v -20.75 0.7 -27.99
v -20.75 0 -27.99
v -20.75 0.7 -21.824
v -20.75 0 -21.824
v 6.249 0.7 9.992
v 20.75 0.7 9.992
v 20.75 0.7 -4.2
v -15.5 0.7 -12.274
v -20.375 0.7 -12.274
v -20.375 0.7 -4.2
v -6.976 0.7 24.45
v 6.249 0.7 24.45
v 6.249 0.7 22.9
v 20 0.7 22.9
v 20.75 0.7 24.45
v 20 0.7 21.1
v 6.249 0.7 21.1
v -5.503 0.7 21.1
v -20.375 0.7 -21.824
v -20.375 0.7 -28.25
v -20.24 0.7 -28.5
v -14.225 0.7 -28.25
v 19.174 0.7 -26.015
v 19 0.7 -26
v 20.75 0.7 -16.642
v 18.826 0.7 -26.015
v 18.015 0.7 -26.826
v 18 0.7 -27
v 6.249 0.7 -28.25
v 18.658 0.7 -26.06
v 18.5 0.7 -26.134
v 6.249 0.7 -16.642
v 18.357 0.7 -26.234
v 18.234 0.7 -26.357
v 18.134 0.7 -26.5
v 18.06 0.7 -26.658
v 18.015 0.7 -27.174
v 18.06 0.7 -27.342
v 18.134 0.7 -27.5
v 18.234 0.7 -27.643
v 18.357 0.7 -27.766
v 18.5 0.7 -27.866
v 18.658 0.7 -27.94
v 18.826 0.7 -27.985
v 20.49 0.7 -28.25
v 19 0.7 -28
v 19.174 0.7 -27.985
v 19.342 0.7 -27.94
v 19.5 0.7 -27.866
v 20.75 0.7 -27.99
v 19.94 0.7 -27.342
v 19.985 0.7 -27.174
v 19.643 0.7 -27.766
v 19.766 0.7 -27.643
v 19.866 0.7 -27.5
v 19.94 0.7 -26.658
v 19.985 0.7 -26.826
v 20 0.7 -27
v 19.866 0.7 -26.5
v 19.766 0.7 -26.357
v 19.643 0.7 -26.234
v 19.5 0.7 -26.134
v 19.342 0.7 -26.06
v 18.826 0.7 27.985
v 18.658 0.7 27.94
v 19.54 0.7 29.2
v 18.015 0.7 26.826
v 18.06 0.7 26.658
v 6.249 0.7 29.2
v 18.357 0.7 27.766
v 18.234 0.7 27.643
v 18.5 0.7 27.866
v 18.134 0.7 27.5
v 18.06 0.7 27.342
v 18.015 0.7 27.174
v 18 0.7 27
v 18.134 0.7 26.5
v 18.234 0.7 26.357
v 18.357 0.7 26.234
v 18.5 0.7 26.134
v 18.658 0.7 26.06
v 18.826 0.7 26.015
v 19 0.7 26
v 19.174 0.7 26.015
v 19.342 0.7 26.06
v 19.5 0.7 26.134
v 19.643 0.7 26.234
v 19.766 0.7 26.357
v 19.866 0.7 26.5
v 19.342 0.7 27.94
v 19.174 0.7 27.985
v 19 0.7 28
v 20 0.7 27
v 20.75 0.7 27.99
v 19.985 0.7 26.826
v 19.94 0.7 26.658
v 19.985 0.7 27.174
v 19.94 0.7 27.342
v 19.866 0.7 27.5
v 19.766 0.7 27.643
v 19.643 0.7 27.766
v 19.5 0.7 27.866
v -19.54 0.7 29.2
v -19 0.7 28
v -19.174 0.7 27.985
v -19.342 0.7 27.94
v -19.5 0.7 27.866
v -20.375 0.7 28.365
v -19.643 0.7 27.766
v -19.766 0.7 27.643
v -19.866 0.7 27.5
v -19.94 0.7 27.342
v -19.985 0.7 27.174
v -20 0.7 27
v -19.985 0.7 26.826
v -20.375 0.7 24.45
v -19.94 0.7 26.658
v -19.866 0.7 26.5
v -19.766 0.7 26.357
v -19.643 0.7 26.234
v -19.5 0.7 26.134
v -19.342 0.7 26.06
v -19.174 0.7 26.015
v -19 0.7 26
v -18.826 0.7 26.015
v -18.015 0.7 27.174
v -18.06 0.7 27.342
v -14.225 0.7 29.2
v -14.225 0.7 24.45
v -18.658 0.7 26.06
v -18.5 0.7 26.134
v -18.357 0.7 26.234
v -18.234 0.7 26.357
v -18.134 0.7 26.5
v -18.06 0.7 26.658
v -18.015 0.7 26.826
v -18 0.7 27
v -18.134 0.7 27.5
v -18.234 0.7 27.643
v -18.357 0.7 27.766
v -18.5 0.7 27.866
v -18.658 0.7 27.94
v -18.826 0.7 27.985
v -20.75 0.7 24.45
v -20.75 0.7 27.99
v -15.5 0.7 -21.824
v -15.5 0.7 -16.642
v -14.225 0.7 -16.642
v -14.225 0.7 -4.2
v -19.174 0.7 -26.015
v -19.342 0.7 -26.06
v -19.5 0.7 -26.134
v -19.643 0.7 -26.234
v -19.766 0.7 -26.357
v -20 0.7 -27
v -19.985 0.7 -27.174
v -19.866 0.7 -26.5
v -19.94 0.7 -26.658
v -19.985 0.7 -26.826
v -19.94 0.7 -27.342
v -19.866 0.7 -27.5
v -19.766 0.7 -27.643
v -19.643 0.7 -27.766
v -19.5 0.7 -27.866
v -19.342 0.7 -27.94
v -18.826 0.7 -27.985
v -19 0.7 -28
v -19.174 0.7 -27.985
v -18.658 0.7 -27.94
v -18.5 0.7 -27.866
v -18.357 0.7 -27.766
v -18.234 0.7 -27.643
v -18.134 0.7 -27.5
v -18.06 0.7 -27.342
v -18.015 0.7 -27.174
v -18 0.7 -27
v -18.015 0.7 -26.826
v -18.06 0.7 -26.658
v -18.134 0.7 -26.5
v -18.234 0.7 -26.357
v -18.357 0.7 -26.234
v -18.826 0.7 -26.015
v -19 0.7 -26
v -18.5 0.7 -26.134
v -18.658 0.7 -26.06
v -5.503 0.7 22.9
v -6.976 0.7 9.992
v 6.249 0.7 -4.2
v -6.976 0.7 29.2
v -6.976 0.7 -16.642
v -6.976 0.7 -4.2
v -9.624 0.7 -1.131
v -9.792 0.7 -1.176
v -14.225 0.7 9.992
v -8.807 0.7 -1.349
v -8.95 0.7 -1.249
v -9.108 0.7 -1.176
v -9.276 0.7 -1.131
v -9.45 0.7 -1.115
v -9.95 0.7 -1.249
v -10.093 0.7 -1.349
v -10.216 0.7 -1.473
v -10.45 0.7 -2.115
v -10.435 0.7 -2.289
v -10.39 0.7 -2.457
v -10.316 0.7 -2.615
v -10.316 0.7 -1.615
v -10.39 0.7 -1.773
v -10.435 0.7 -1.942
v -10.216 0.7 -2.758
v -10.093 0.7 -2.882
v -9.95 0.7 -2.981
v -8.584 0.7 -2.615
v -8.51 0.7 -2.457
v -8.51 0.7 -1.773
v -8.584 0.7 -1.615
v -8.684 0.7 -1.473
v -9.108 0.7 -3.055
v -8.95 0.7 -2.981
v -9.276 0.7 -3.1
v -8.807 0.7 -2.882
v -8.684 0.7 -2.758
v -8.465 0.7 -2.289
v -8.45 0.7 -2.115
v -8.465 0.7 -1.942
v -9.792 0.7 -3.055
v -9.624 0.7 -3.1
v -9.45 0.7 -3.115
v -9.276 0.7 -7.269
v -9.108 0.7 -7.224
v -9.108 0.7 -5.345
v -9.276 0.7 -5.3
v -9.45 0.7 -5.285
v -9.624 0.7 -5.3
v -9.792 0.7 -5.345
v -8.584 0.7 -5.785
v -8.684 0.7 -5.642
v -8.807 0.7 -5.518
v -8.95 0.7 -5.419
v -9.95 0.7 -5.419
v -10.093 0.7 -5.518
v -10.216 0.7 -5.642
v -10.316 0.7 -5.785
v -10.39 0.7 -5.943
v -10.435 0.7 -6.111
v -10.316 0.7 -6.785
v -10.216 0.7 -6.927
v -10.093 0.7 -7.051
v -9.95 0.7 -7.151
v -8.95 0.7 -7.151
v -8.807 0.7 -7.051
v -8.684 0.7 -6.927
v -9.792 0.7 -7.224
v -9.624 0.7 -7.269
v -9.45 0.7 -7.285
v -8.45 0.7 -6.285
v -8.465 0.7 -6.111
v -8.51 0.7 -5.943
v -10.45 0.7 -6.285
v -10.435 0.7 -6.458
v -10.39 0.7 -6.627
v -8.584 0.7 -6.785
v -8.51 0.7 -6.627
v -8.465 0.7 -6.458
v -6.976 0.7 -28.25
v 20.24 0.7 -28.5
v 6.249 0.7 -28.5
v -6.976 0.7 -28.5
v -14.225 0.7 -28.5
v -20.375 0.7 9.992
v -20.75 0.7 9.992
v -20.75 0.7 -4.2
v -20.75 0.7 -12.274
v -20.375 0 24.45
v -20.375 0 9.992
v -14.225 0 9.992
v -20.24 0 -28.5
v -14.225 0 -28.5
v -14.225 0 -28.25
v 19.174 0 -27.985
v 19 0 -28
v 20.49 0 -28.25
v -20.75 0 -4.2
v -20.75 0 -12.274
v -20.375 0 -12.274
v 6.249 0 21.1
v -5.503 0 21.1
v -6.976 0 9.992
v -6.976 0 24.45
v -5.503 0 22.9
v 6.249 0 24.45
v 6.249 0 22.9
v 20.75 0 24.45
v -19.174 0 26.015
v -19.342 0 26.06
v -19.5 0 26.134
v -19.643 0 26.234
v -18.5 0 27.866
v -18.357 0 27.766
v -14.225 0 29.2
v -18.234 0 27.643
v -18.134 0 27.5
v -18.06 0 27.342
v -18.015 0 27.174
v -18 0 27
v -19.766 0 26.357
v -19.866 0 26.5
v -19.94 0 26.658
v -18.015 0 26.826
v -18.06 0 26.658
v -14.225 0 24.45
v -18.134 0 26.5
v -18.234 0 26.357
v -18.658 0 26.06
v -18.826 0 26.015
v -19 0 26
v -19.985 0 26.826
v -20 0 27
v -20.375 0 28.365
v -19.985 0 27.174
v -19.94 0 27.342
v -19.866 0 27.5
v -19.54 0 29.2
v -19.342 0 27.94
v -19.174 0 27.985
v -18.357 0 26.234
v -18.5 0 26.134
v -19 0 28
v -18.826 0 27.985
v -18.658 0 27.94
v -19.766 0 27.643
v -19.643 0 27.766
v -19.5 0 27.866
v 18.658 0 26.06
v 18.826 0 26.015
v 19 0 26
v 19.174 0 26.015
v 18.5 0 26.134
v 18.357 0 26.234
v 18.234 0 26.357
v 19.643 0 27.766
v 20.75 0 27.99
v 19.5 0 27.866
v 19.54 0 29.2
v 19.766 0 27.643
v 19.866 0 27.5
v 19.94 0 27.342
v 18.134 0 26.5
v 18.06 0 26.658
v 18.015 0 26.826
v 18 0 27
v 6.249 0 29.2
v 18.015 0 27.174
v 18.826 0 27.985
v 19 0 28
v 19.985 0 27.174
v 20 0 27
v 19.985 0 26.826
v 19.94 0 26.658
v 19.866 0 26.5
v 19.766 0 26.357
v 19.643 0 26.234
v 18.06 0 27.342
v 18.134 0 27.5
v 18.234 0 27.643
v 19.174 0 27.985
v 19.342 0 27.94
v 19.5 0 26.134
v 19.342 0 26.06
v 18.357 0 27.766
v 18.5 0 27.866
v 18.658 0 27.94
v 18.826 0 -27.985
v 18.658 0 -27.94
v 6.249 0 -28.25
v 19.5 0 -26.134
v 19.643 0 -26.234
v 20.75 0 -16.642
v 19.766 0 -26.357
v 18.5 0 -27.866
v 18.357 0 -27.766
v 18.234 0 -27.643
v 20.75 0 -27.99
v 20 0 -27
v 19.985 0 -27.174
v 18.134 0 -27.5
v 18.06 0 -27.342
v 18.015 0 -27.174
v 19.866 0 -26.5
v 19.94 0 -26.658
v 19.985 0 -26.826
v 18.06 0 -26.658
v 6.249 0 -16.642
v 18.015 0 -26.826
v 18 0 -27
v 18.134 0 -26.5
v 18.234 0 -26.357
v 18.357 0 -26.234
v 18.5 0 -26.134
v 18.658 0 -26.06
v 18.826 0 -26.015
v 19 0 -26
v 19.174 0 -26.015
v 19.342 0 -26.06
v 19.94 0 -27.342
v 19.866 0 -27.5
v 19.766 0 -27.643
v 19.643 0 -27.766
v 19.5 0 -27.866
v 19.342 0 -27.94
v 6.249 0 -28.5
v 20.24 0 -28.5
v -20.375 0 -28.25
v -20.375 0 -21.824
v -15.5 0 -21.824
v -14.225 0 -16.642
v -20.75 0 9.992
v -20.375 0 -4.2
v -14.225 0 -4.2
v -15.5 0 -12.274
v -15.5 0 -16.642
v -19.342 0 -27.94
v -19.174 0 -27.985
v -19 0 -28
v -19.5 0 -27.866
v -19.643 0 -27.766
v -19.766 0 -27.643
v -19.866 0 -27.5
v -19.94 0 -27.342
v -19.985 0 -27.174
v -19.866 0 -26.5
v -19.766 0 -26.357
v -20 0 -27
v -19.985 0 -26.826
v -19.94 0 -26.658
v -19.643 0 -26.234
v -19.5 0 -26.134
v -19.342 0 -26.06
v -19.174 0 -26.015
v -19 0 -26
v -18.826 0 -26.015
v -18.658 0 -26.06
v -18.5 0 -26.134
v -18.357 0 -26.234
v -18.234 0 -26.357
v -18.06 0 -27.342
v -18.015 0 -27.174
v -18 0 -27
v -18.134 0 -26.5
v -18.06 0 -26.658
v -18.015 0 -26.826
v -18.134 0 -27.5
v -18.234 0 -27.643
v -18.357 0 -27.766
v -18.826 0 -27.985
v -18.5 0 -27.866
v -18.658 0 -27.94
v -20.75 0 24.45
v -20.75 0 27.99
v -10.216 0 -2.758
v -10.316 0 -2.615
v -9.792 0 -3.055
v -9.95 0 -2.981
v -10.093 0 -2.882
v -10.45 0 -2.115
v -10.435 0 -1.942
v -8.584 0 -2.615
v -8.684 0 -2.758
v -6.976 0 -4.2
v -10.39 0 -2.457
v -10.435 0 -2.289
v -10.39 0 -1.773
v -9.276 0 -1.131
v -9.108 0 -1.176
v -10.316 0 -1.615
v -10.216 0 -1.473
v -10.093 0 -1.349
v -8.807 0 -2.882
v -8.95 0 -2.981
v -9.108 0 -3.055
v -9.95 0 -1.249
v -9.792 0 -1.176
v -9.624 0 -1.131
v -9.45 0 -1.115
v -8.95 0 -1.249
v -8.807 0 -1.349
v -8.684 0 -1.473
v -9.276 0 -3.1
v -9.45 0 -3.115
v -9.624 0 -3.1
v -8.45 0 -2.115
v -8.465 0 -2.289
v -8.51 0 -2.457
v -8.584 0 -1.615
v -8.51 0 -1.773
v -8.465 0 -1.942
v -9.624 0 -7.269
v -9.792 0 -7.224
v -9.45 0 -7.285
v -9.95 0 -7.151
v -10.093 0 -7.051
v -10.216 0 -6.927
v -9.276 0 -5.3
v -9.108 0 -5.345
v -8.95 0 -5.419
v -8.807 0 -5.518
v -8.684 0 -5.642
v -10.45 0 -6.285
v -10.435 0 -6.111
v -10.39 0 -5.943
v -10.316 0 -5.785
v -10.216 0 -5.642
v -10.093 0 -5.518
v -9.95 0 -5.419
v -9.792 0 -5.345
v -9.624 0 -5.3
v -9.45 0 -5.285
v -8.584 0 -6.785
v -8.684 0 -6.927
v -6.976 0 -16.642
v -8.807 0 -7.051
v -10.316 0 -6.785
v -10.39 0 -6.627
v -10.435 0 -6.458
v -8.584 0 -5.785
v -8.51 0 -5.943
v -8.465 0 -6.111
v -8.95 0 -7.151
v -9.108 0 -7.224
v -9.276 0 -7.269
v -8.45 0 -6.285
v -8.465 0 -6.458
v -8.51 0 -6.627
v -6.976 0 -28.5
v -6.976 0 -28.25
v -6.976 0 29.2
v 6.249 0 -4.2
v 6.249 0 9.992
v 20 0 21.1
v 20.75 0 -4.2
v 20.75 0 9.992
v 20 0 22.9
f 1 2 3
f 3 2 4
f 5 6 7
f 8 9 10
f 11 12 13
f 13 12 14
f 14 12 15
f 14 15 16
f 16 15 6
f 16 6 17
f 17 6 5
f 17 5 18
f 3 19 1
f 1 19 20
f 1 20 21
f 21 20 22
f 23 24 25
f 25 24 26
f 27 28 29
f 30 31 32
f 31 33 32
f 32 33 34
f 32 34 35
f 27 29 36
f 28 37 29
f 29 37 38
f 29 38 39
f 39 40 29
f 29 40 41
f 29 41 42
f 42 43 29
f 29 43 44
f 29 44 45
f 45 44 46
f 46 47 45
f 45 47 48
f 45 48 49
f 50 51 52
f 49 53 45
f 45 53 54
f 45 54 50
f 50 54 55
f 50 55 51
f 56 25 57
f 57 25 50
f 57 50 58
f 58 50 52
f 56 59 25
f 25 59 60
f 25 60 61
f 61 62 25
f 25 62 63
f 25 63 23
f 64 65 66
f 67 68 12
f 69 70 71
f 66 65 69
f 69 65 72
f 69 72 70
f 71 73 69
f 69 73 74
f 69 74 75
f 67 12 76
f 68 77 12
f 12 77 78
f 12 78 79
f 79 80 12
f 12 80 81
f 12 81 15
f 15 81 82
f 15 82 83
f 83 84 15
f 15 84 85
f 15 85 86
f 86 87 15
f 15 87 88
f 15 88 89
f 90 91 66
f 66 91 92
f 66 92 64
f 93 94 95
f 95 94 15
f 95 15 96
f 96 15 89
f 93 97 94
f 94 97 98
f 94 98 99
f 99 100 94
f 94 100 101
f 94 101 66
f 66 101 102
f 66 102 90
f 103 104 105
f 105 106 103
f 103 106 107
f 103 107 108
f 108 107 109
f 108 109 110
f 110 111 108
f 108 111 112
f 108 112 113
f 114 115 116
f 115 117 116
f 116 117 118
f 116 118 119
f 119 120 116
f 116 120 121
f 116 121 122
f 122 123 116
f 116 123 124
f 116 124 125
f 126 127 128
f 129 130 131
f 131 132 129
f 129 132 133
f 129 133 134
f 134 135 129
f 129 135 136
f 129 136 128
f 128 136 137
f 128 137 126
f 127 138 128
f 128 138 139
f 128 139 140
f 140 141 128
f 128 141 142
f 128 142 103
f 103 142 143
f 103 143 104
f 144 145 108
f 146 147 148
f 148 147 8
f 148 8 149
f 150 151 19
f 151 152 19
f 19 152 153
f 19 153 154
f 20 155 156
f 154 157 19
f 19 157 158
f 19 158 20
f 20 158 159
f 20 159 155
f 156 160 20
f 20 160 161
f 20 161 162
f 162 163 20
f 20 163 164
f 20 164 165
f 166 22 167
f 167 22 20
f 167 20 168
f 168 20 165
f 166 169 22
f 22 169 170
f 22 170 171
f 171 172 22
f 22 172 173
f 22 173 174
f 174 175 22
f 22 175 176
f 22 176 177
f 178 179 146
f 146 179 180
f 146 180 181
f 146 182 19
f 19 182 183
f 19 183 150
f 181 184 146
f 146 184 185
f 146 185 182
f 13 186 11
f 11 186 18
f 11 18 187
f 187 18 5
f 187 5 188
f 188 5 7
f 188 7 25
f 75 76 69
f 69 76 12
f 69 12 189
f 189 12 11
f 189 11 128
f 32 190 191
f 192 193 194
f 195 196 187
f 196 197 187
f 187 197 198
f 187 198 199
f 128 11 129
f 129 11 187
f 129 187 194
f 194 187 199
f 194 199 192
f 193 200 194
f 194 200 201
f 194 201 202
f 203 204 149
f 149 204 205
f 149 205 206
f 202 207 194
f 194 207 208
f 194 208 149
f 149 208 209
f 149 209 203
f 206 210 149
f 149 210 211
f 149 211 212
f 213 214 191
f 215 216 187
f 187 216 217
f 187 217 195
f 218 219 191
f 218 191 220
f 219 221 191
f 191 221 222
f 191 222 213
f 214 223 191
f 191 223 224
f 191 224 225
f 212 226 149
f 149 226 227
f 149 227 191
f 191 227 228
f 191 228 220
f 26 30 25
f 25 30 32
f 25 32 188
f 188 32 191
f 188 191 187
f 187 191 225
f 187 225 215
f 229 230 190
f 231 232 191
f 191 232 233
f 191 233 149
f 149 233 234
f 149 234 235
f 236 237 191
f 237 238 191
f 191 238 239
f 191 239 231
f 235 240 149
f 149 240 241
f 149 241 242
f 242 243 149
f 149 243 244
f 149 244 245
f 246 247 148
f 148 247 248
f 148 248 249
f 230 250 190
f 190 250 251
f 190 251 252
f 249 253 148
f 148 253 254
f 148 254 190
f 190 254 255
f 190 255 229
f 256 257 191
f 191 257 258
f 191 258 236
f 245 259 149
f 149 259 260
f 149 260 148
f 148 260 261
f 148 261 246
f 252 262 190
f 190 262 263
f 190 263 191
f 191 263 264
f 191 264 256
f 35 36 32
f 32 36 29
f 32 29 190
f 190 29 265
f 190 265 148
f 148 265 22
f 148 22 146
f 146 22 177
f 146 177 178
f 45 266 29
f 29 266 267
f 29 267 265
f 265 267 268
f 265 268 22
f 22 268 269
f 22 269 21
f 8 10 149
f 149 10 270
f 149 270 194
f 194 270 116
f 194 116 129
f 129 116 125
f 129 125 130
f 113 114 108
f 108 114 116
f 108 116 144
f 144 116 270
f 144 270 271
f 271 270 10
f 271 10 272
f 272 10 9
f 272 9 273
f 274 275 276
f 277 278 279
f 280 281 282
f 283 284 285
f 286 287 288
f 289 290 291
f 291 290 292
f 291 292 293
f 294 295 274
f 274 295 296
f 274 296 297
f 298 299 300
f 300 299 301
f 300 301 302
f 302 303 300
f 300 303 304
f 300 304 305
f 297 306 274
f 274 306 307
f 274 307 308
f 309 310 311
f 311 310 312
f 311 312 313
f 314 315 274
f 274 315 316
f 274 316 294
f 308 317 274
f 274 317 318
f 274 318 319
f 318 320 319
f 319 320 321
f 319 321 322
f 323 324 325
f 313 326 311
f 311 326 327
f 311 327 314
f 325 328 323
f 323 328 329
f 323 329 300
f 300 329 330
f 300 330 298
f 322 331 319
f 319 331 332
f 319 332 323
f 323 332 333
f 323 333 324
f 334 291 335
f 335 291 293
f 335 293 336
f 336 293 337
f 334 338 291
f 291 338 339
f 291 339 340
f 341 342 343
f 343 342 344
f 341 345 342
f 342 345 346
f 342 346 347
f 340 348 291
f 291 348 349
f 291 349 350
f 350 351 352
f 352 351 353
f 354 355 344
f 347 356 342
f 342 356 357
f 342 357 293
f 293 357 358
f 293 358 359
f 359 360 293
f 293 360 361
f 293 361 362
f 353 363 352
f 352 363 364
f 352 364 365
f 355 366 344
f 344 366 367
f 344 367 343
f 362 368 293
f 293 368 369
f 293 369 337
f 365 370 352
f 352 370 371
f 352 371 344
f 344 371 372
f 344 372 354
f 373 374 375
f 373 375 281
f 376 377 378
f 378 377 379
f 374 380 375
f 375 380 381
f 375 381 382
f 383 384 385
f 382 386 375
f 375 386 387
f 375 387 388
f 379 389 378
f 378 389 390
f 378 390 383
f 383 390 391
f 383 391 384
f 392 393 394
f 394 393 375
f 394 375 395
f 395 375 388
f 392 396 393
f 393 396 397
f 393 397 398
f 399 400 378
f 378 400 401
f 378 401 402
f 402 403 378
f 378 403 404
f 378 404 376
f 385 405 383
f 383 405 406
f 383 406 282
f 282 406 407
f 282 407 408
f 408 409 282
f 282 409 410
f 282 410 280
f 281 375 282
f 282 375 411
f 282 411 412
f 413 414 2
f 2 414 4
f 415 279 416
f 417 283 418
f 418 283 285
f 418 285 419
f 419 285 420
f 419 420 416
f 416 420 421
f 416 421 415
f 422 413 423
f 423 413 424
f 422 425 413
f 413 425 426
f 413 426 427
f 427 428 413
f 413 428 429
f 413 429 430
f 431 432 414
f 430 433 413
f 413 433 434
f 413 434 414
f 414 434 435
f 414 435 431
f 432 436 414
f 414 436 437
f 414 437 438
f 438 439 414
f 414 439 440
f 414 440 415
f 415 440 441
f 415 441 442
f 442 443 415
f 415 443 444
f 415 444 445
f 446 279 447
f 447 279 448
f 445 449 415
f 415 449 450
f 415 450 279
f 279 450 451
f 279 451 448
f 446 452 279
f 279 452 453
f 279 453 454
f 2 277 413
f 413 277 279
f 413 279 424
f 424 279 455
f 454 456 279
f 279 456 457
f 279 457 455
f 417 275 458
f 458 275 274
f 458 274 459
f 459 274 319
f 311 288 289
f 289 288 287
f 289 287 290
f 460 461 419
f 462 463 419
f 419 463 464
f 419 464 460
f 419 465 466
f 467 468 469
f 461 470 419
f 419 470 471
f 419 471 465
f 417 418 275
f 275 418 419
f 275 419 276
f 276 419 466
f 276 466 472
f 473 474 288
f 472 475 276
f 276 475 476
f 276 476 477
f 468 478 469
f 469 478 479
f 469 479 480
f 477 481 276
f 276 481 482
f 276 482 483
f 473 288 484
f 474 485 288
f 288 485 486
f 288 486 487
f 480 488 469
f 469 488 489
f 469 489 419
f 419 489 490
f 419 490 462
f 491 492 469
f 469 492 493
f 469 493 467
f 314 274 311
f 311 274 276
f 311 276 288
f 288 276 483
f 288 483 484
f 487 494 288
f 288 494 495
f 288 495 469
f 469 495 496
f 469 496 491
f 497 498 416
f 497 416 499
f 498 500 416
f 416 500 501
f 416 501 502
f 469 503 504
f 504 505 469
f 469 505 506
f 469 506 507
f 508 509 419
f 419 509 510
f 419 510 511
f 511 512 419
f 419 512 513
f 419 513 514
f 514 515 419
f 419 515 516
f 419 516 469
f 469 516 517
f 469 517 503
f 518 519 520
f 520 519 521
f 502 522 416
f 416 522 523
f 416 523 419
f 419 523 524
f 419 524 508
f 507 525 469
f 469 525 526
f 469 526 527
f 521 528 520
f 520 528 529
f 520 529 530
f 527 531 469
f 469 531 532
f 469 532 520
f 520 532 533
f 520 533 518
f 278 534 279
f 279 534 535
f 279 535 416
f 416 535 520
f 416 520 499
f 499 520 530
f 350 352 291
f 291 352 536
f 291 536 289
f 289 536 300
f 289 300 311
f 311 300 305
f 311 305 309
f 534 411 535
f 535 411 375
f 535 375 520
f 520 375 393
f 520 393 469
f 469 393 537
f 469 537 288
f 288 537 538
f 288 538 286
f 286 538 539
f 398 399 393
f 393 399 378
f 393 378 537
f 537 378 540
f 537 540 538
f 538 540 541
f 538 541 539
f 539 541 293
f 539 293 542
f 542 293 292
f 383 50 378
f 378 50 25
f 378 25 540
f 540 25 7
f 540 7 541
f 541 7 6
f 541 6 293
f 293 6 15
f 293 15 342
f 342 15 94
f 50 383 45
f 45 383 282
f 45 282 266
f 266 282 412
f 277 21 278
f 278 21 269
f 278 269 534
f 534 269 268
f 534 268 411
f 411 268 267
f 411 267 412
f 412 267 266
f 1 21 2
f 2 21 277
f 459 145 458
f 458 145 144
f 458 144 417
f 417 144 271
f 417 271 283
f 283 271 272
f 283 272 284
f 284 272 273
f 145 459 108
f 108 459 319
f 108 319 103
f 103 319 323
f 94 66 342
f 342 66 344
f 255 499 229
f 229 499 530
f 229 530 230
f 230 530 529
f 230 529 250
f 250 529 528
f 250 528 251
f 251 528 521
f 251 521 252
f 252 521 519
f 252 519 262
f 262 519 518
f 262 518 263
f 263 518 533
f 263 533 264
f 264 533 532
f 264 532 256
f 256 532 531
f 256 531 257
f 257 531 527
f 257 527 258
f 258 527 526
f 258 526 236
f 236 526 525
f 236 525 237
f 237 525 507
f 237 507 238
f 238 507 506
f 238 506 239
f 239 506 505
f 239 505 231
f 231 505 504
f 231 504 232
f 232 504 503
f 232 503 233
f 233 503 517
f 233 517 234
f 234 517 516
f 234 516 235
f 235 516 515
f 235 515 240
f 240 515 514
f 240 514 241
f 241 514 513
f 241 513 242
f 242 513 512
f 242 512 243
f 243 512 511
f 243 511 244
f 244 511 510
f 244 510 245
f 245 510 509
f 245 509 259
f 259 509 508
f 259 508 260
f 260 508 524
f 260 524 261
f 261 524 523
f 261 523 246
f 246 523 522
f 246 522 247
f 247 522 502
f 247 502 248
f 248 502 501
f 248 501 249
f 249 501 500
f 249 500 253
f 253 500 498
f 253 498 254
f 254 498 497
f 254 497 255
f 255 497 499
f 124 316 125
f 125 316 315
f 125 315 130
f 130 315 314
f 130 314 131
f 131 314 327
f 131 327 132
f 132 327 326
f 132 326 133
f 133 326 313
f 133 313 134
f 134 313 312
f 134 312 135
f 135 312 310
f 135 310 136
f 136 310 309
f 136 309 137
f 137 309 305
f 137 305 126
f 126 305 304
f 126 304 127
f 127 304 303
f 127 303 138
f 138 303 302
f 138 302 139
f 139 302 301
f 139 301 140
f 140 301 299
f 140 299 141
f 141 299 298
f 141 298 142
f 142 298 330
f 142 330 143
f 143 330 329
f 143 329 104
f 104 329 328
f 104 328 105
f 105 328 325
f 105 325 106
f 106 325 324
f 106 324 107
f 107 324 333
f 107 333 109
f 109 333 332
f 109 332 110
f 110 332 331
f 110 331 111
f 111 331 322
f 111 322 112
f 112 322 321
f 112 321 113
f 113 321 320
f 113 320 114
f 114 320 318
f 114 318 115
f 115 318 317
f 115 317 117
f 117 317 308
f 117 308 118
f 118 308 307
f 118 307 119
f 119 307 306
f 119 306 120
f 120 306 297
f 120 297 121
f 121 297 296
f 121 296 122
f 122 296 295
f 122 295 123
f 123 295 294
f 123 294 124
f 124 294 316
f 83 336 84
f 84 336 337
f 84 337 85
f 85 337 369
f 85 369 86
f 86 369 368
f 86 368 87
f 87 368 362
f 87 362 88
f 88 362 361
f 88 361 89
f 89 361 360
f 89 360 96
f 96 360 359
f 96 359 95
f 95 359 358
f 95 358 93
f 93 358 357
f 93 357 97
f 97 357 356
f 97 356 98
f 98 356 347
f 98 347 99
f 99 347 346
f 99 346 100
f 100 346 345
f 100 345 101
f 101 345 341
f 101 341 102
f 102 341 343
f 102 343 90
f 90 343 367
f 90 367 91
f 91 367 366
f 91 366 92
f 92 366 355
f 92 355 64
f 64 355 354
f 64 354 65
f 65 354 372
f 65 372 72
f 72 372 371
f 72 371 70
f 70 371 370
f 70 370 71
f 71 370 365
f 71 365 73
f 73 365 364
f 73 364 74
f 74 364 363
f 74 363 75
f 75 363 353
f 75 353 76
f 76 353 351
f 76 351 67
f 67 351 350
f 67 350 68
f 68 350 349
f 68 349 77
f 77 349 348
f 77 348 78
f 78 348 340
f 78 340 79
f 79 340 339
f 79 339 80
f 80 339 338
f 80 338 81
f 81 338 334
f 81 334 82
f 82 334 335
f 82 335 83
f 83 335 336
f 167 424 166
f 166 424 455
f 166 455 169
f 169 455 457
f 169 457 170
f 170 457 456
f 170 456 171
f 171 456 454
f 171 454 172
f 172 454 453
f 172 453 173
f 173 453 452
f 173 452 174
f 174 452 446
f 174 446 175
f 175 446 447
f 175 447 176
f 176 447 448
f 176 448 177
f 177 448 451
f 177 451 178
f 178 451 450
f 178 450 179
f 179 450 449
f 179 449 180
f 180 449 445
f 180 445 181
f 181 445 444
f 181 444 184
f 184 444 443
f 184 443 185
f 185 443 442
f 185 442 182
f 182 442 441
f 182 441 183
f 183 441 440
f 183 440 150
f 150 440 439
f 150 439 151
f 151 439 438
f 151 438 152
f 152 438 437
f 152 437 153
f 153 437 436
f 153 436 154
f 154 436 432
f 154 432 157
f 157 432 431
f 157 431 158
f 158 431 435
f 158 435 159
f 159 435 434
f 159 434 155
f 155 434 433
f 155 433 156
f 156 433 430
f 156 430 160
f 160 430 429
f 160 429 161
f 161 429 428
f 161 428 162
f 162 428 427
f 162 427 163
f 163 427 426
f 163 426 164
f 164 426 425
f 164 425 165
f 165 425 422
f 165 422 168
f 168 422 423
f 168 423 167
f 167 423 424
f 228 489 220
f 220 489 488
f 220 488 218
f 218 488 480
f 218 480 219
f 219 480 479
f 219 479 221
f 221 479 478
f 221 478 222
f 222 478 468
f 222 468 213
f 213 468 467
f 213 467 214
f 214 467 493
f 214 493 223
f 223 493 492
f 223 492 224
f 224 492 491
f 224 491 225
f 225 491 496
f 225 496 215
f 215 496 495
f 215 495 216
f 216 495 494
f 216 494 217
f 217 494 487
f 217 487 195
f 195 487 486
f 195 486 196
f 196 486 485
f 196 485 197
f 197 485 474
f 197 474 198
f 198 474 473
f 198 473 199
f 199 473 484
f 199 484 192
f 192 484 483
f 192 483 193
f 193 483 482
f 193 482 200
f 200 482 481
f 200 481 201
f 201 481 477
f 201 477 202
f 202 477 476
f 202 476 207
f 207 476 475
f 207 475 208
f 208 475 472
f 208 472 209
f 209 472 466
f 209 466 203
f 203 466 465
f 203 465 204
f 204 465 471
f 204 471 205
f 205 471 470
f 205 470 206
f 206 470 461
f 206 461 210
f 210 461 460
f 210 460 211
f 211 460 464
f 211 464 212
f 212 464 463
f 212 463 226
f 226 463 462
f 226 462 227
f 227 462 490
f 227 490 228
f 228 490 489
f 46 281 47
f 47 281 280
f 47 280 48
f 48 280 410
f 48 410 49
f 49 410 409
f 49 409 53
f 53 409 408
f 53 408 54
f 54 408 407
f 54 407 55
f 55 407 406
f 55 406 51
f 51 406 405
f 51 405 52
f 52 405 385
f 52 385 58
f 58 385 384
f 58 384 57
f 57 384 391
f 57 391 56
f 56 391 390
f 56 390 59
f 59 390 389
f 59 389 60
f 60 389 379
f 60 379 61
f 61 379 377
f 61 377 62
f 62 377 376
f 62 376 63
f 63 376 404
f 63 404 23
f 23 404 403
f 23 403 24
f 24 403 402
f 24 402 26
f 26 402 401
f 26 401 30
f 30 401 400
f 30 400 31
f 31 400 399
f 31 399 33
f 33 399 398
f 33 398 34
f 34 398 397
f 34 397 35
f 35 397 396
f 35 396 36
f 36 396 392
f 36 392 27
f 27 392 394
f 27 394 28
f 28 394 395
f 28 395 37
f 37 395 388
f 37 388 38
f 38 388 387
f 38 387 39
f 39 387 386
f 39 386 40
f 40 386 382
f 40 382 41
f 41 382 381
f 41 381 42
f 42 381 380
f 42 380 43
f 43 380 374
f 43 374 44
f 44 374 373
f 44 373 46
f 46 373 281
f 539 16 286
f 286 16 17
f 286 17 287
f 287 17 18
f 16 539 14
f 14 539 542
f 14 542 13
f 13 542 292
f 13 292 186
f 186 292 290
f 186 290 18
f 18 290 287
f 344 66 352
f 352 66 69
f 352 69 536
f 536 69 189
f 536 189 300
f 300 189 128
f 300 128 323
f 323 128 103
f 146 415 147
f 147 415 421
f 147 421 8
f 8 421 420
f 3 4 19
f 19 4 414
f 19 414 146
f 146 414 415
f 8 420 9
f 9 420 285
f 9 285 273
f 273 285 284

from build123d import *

# Parameters (mm, degrees)
SKETCH1_R           = 1
BOSS_EXTRUDE1_DEPTH = 0.7
SKETCH2_W           = 25.502878438
SKETCH2_H           = 1.8
CUT_EXTRUDE1_DEPTH  = 10
BOSS_EXTRUDE2_DEPTH = 0.7
SKETCH6_W           = 5.25
SKETCH6_H           = 9.55
CUT_EXTRUDE2_DEPTH  = 6


with BuildPart() as part:
    # Sketch1 → Boss-Extrude1 (new body)
    with BuildSketch(Plane(origin=(0, 0, 0), x_dir=(1, 0, 0), z_dir=(0, 1, 0))):
        Polygon((20.240139403, -28.5), (20.75, -27.990139403), (20.75, 27.990139403), (20.240139403, 28.5), (-20.240139403, 28.5), (-20.75, 27.990139403), (-20.75, -27.990139403), (-20.240139403, -28.5), align=None)
        with Locations((-19, -27)):
            Circle(SKETCH1_R, mode=Mode.SUBTRACT)
        with Locations((19, -27)):
            Circle(SKETCH1_R, mode=Mode.SUBTRACT)
        with Locations((-9.45, 2.115469811)):
            Circle(SKETCH1_R, mode=Mode.SUBTRACT)
        with Locations((-9.45, 6.284530189)):
            Circle(SKETCH1_R, mode=Mode.SUBTRACT)
        with Locations((-19, 27)):
            Circle(SKETCH1_R, mode=Mode.SUBTRACT)
        with Locations((19, 27)):
            Circle(SKETCH1_R, mode=Mode.SUBTRACT)
    extrude(amount=BOSS_EXTRUDE1_DEPTH)

    # Sketch2 → Cut-Extrude1 (cut)
    with BuildSketch(Plane(origin=(0, 0.7, 0), x_dir=(1, 0, 0), z_dir=(0, 1, 0))):
        with Locations((7.248560781, -22)):
            Rectangle(SKETCH2_W, SKETCH2_H)
    extrude(amount=-CUT_EXTRUDE1_DEPTH, mode=Mode.SUBTRACT)

    # Sketch5 → Boss-Extrude2 (add)
    with BuildSketch(Plane(origin=(0, 0.7, 0), x_dir=(1, 0, 0), z_dir=(0, 1, 0))):
        Polygon((-19.540139403, -29.2), (19.540139403, -29.2), (20.240139403, -28.5), (-20.240139403, -28.5), align=None)
    extrude(amount=-BOSS_EXTRUDE2_DEPTH)

    # Sketch6 → Cut-Extrude2 (cut)
    with BuildSketch(Plane(origin=(0, 0.7, 0), x_dir=(1, 0, 0), z_dir=(0, 1, 0))):
        with Locations((-18.125, 17.048605705)):
            Rectangle(SKETCH6_W, SKETCH6_H)
    extrude(amount=-CUT_EXTRUDE2_DEPTH, mode=Mode.SUBTRACT)


solid = part.part
